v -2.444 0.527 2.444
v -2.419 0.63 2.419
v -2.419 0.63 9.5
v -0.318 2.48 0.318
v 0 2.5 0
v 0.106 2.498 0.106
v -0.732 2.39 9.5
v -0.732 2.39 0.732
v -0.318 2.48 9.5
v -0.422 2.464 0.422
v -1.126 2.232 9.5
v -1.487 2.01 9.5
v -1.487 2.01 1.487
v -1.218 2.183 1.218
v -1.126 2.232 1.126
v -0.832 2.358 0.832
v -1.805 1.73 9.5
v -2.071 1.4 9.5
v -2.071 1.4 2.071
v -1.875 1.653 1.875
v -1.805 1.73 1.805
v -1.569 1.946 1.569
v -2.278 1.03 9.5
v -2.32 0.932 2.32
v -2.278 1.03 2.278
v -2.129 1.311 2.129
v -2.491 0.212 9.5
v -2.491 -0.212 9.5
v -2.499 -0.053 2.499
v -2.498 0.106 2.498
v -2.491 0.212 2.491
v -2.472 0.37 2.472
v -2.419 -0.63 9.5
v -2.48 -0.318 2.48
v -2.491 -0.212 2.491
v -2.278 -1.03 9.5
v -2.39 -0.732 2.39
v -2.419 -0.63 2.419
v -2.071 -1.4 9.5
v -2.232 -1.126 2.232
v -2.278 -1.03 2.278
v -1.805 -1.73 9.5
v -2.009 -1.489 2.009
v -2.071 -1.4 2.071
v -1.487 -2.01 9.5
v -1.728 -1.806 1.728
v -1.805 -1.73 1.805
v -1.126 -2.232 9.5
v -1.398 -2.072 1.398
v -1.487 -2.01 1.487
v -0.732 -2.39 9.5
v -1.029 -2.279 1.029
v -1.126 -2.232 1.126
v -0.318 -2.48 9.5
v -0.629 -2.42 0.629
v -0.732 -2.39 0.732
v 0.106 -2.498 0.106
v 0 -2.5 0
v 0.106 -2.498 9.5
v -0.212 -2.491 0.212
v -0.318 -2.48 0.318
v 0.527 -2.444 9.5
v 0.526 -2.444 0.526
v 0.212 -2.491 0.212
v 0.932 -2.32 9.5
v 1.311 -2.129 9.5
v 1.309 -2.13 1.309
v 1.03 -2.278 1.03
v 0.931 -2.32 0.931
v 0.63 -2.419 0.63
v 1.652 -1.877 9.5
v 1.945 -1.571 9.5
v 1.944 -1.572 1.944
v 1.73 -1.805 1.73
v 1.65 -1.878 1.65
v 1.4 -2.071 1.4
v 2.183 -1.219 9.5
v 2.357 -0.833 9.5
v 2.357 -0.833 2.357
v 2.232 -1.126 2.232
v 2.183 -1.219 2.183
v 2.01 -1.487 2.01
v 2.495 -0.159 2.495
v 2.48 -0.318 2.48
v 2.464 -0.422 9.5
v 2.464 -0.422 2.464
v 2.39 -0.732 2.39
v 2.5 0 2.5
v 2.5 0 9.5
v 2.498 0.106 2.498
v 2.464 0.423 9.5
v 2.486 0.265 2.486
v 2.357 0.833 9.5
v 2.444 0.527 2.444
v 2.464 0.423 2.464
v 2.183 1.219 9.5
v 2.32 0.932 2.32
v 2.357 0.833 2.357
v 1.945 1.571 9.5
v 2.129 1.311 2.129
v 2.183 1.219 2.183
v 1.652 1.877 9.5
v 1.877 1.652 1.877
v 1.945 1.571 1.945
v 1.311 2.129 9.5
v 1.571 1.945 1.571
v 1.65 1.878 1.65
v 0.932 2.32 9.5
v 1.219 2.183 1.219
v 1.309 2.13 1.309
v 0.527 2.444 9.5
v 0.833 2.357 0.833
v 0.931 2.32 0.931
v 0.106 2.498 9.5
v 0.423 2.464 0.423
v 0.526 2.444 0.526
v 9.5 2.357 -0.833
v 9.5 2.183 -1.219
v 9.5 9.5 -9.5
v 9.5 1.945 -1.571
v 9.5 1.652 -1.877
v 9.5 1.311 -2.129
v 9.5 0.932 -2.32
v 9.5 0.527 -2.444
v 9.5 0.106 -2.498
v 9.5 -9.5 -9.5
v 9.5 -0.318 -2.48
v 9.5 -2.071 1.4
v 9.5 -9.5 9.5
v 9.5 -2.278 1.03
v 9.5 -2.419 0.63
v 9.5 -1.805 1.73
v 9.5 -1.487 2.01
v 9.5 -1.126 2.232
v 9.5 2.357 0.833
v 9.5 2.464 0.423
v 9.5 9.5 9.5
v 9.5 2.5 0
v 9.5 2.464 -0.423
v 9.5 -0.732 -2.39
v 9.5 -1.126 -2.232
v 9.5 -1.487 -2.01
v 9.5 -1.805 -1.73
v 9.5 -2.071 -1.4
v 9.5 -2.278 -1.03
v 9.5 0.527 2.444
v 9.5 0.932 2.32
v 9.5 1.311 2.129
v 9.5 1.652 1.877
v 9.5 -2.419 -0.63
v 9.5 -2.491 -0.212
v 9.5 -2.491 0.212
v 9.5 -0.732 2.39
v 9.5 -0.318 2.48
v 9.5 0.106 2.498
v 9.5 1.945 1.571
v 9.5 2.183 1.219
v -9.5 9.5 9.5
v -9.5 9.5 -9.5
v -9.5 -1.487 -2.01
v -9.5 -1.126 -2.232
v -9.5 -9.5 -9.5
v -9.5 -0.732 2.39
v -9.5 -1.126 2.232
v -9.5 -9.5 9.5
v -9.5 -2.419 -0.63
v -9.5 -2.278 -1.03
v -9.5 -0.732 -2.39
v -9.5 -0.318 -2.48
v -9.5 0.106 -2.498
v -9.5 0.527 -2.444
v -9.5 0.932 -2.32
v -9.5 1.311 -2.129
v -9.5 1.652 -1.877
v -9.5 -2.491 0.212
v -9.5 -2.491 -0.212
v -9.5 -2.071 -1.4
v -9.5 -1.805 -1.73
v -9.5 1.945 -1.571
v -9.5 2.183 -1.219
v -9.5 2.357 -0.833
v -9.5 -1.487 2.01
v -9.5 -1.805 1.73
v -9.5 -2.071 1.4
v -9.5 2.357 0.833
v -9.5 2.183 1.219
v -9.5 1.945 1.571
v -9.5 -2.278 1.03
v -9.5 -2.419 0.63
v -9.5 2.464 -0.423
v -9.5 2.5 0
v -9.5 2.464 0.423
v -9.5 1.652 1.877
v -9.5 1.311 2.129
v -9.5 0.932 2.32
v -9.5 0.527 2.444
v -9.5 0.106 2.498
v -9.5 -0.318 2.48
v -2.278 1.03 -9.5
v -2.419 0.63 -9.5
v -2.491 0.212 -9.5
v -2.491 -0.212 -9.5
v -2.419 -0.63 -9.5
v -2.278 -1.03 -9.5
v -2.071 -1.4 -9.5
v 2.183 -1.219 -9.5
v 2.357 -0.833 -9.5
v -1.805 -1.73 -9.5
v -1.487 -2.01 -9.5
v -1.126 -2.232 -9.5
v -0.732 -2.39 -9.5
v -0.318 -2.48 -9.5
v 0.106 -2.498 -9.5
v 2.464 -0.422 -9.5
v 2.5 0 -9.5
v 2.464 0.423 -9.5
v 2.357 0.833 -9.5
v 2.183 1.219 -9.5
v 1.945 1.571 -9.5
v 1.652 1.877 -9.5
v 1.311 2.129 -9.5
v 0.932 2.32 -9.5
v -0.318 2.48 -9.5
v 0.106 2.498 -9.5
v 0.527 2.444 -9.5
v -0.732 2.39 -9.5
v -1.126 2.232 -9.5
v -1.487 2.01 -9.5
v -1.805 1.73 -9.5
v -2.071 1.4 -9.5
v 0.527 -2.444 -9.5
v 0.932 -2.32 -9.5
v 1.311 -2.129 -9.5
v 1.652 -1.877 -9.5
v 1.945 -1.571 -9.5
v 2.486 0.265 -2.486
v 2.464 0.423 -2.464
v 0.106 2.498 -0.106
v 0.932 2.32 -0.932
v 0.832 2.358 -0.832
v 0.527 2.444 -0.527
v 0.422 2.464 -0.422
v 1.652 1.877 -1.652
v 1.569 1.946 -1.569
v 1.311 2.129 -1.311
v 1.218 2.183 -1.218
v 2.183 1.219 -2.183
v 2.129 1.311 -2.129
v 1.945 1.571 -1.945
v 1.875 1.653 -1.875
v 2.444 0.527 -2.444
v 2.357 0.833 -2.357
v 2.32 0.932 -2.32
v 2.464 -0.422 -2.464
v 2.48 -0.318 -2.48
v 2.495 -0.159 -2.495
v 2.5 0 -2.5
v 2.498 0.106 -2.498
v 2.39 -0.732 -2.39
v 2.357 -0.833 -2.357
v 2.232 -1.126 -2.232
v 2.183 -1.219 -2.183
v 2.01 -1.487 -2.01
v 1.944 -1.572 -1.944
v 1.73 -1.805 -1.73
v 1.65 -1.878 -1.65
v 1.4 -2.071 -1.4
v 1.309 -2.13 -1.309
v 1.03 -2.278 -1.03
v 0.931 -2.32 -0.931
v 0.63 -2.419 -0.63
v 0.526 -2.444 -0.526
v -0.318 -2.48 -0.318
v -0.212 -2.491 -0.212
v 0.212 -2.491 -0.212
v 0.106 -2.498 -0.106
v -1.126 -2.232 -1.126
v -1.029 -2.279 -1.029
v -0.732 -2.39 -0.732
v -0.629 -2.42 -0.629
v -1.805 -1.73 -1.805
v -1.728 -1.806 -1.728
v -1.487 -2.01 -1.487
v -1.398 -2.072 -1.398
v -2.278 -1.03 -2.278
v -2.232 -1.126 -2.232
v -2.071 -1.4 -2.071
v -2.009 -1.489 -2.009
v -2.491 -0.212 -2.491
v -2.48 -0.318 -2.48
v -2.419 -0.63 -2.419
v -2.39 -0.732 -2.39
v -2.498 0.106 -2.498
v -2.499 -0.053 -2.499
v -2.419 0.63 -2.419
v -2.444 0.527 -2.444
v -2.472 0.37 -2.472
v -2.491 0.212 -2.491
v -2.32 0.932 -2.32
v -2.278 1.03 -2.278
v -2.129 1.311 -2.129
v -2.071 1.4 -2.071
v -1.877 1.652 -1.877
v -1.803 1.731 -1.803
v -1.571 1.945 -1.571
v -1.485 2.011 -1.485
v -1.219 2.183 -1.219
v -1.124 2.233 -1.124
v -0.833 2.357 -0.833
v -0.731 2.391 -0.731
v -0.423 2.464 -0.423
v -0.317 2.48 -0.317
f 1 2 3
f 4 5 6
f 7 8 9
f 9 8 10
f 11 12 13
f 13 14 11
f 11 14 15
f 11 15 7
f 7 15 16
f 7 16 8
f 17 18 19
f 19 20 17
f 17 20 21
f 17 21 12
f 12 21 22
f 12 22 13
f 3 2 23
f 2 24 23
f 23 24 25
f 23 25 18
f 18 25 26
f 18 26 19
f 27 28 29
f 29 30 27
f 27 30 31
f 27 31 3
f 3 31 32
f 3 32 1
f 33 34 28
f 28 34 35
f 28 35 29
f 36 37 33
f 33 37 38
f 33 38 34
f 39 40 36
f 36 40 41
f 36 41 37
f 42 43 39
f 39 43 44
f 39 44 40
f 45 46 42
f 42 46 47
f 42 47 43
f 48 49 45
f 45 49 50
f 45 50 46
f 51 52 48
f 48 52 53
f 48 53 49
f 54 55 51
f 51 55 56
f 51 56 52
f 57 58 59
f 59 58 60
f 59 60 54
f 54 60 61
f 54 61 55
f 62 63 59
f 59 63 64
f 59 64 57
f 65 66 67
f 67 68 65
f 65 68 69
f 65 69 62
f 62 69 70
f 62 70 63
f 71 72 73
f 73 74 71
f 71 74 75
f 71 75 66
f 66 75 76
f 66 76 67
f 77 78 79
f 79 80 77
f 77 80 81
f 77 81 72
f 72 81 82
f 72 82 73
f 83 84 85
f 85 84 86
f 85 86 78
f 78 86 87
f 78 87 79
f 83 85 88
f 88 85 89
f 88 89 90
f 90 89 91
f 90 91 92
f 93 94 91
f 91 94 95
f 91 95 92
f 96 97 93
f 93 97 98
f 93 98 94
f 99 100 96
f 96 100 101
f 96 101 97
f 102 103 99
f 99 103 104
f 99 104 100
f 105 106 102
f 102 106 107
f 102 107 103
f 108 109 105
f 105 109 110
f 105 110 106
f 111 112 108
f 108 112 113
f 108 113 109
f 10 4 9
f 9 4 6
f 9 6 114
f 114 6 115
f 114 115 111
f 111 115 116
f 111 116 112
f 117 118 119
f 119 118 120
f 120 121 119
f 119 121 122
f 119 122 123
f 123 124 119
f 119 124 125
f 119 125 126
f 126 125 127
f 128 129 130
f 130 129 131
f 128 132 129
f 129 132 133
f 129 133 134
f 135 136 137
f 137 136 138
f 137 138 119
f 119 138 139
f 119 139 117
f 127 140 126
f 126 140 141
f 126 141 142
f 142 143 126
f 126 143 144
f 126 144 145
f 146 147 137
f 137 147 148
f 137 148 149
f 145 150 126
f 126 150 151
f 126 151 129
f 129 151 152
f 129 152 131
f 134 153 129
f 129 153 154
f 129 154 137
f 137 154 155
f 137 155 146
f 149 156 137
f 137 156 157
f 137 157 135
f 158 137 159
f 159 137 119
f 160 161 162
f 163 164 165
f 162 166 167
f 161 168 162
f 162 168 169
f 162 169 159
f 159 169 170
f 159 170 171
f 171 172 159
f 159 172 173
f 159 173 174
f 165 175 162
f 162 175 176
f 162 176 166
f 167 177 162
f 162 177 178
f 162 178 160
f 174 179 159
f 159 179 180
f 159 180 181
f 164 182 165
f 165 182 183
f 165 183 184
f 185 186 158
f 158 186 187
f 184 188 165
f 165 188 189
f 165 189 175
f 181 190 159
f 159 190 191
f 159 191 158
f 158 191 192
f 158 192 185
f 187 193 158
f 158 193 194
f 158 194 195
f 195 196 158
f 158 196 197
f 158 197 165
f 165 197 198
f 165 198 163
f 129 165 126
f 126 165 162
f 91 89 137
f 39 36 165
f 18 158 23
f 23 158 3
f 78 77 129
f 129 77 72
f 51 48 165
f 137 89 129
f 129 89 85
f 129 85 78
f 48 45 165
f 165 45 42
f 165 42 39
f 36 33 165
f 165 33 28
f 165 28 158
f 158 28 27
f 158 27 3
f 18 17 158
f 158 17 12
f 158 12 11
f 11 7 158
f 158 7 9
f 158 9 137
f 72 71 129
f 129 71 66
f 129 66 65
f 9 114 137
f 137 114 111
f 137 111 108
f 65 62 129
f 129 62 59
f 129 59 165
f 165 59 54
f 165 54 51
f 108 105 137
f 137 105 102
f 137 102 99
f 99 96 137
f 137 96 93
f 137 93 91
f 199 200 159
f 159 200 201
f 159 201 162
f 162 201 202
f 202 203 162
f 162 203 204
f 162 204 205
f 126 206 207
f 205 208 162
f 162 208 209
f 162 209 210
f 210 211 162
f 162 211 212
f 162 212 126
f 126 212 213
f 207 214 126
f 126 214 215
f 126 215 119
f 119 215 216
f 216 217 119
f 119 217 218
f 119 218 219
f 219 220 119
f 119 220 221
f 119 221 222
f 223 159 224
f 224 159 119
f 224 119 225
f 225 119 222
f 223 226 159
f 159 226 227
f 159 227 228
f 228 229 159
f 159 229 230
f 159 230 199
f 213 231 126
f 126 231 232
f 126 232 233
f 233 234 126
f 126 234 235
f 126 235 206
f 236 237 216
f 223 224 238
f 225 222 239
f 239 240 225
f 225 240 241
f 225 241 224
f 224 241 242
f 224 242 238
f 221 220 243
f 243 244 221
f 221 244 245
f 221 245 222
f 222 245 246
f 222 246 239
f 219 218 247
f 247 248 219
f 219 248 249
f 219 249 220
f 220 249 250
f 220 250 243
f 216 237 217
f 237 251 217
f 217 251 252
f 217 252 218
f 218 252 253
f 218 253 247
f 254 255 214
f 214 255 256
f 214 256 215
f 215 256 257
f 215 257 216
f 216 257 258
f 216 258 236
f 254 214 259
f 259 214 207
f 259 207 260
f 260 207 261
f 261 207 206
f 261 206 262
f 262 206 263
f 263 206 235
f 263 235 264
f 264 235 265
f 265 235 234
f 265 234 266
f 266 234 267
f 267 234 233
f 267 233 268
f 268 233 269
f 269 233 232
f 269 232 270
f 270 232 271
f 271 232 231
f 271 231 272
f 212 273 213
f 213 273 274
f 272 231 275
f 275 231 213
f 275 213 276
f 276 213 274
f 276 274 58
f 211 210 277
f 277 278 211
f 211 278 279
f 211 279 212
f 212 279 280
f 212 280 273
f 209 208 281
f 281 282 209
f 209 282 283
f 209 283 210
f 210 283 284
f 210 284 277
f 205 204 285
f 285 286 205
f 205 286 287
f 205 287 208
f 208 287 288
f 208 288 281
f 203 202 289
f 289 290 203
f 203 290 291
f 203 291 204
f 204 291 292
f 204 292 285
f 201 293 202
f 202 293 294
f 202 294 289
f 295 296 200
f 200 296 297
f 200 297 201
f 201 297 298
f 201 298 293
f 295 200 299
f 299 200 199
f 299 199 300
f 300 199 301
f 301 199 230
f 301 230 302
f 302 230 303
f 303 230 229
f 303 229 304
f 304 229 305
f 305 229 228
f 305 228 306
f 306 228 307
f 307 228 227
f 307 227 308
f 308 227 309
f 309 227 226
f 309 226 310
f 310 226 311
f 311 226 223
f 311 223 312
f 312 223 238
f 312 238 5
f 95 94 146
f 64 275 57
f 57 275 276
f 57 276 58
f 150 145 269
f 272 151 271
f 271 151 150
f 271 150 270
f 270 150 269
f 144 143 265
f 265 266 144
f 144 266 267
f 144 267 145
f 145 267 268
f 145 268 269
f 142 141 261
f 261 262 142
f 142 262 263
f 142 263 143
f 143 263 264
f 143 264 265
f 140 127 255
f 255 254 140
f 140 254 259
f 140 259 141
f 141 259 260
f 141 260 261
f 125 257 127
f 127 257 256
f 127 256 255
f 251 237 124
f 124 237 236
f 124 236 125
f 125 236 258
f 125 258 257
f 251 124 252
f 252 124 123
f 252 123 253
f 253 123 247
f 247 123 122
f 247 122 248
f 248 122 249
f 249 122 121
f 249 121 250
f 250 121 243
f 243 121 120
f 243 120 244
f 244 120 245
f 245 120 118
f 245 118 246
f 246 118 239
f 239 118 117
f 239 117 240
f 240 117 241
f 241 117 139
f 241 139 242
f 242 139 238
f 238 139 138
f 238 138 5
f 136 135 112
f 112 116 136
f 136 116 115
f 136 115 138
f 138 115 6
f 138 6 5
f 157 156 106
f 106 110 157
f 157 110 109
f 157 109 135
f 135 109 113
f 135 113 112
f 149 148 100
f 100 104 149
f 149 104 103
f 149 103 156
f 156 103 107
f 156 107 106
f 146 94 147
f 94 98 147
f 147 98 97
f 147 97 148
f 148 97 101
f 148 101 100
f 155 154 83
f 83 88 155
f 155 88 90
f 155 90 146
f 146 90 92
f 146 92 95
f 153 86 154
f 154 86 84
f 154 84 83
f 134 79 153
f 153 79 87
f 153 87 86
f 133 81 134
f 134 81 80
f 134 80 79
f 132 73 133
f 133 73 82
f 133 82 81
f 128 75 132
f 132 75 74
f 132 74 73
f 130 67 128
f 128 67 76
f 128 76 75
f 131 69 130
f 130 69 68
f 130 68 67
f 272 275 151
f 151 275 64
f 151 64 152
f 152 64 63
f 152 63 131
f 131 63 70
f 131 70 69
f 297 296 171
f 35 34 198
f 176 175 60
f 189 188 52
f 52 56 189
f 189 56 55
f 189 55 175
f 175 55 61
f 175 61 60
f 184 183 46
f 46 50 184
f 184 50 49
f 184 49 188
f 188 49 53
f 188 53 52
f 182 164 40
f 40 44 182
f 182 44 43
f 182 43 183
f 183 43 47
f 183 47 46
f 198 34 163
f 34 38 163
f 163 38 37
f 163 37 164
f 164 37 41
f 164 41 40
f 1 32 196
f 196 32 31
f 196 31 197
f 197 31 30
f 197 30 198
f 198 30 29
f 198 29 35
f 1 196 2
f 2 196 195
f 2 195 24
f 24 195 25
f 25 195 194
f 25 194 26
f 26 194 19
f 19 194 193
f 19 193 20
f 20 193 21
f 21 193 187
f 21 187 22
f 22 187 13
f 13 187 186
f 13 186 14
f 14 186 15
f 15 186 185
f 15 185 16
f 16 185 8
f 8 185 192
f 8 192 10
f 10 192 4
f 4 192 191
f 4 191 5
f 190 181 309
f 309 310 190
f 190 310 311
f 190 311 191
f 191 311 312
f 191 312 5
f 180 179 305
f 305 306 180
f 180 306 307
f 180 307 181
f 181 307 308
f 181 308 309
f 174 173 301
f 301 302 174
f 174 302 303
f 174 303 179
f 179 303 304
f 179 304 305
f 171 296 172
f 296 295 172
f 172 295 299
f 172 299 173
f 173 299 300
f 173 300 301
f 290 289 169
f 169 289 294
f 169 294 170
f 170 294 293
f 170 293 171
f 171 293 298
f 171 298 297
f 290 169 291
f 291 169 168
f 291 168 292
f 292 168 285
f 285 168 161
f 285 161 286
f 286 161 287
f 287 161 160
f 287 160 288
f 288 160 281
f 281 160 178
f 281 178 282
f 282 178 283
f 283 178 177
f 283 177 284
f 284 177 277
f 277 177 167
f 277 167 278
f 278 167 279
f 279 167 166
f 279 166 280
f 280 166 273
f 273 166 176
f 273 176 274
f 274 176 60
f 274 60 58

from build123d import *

# Parameters (mm, degrees)
SKETCH1_W           = 19
SKETCH1_H           = 19
BOSS_EXTRUDE1_DEPTH = 9.5
SKETCH2_R           = 2.5
CUT_EXTRUDE1_DEPTH  = 25
SKETCH3_R           = 2.5
CUT_EXTRUDE2_DEPTH  = 25


with BuildPart() as part:
    # Sketch1 → Boss-Extrude1 (new body, symmetric)
    with BuildSketch(Plane.XY):
        Rectangle(SKETCH1_W, SKETCH1_H)
    extrude(amount=BOSS_EXTRUDE1_DEPTH, both=True)

    # Sketch2 → Cut-Extrude1 (cut)
    with BuildSketch(Plane.XY.offset(9.5)):
        Circle(SKETCH2_R)
    extrude(amount=-CUT_EXTRUDE1_DEPTH, mode=Mode.SUBTRACT)

    # Sketch3 → Cut-Extrude2 (cut)
    with BuildSketch(Plane(origin=(9.5, 0, 0), x_dir=(0, 0, -1), z_dir=(1, 0, 0))):
        Circle(SKETCH3_R)
    extrude(amount=-CUT_EXTRUDE2_DEPTH, mode=Mode.SUBTRACT)


solid = part.part
